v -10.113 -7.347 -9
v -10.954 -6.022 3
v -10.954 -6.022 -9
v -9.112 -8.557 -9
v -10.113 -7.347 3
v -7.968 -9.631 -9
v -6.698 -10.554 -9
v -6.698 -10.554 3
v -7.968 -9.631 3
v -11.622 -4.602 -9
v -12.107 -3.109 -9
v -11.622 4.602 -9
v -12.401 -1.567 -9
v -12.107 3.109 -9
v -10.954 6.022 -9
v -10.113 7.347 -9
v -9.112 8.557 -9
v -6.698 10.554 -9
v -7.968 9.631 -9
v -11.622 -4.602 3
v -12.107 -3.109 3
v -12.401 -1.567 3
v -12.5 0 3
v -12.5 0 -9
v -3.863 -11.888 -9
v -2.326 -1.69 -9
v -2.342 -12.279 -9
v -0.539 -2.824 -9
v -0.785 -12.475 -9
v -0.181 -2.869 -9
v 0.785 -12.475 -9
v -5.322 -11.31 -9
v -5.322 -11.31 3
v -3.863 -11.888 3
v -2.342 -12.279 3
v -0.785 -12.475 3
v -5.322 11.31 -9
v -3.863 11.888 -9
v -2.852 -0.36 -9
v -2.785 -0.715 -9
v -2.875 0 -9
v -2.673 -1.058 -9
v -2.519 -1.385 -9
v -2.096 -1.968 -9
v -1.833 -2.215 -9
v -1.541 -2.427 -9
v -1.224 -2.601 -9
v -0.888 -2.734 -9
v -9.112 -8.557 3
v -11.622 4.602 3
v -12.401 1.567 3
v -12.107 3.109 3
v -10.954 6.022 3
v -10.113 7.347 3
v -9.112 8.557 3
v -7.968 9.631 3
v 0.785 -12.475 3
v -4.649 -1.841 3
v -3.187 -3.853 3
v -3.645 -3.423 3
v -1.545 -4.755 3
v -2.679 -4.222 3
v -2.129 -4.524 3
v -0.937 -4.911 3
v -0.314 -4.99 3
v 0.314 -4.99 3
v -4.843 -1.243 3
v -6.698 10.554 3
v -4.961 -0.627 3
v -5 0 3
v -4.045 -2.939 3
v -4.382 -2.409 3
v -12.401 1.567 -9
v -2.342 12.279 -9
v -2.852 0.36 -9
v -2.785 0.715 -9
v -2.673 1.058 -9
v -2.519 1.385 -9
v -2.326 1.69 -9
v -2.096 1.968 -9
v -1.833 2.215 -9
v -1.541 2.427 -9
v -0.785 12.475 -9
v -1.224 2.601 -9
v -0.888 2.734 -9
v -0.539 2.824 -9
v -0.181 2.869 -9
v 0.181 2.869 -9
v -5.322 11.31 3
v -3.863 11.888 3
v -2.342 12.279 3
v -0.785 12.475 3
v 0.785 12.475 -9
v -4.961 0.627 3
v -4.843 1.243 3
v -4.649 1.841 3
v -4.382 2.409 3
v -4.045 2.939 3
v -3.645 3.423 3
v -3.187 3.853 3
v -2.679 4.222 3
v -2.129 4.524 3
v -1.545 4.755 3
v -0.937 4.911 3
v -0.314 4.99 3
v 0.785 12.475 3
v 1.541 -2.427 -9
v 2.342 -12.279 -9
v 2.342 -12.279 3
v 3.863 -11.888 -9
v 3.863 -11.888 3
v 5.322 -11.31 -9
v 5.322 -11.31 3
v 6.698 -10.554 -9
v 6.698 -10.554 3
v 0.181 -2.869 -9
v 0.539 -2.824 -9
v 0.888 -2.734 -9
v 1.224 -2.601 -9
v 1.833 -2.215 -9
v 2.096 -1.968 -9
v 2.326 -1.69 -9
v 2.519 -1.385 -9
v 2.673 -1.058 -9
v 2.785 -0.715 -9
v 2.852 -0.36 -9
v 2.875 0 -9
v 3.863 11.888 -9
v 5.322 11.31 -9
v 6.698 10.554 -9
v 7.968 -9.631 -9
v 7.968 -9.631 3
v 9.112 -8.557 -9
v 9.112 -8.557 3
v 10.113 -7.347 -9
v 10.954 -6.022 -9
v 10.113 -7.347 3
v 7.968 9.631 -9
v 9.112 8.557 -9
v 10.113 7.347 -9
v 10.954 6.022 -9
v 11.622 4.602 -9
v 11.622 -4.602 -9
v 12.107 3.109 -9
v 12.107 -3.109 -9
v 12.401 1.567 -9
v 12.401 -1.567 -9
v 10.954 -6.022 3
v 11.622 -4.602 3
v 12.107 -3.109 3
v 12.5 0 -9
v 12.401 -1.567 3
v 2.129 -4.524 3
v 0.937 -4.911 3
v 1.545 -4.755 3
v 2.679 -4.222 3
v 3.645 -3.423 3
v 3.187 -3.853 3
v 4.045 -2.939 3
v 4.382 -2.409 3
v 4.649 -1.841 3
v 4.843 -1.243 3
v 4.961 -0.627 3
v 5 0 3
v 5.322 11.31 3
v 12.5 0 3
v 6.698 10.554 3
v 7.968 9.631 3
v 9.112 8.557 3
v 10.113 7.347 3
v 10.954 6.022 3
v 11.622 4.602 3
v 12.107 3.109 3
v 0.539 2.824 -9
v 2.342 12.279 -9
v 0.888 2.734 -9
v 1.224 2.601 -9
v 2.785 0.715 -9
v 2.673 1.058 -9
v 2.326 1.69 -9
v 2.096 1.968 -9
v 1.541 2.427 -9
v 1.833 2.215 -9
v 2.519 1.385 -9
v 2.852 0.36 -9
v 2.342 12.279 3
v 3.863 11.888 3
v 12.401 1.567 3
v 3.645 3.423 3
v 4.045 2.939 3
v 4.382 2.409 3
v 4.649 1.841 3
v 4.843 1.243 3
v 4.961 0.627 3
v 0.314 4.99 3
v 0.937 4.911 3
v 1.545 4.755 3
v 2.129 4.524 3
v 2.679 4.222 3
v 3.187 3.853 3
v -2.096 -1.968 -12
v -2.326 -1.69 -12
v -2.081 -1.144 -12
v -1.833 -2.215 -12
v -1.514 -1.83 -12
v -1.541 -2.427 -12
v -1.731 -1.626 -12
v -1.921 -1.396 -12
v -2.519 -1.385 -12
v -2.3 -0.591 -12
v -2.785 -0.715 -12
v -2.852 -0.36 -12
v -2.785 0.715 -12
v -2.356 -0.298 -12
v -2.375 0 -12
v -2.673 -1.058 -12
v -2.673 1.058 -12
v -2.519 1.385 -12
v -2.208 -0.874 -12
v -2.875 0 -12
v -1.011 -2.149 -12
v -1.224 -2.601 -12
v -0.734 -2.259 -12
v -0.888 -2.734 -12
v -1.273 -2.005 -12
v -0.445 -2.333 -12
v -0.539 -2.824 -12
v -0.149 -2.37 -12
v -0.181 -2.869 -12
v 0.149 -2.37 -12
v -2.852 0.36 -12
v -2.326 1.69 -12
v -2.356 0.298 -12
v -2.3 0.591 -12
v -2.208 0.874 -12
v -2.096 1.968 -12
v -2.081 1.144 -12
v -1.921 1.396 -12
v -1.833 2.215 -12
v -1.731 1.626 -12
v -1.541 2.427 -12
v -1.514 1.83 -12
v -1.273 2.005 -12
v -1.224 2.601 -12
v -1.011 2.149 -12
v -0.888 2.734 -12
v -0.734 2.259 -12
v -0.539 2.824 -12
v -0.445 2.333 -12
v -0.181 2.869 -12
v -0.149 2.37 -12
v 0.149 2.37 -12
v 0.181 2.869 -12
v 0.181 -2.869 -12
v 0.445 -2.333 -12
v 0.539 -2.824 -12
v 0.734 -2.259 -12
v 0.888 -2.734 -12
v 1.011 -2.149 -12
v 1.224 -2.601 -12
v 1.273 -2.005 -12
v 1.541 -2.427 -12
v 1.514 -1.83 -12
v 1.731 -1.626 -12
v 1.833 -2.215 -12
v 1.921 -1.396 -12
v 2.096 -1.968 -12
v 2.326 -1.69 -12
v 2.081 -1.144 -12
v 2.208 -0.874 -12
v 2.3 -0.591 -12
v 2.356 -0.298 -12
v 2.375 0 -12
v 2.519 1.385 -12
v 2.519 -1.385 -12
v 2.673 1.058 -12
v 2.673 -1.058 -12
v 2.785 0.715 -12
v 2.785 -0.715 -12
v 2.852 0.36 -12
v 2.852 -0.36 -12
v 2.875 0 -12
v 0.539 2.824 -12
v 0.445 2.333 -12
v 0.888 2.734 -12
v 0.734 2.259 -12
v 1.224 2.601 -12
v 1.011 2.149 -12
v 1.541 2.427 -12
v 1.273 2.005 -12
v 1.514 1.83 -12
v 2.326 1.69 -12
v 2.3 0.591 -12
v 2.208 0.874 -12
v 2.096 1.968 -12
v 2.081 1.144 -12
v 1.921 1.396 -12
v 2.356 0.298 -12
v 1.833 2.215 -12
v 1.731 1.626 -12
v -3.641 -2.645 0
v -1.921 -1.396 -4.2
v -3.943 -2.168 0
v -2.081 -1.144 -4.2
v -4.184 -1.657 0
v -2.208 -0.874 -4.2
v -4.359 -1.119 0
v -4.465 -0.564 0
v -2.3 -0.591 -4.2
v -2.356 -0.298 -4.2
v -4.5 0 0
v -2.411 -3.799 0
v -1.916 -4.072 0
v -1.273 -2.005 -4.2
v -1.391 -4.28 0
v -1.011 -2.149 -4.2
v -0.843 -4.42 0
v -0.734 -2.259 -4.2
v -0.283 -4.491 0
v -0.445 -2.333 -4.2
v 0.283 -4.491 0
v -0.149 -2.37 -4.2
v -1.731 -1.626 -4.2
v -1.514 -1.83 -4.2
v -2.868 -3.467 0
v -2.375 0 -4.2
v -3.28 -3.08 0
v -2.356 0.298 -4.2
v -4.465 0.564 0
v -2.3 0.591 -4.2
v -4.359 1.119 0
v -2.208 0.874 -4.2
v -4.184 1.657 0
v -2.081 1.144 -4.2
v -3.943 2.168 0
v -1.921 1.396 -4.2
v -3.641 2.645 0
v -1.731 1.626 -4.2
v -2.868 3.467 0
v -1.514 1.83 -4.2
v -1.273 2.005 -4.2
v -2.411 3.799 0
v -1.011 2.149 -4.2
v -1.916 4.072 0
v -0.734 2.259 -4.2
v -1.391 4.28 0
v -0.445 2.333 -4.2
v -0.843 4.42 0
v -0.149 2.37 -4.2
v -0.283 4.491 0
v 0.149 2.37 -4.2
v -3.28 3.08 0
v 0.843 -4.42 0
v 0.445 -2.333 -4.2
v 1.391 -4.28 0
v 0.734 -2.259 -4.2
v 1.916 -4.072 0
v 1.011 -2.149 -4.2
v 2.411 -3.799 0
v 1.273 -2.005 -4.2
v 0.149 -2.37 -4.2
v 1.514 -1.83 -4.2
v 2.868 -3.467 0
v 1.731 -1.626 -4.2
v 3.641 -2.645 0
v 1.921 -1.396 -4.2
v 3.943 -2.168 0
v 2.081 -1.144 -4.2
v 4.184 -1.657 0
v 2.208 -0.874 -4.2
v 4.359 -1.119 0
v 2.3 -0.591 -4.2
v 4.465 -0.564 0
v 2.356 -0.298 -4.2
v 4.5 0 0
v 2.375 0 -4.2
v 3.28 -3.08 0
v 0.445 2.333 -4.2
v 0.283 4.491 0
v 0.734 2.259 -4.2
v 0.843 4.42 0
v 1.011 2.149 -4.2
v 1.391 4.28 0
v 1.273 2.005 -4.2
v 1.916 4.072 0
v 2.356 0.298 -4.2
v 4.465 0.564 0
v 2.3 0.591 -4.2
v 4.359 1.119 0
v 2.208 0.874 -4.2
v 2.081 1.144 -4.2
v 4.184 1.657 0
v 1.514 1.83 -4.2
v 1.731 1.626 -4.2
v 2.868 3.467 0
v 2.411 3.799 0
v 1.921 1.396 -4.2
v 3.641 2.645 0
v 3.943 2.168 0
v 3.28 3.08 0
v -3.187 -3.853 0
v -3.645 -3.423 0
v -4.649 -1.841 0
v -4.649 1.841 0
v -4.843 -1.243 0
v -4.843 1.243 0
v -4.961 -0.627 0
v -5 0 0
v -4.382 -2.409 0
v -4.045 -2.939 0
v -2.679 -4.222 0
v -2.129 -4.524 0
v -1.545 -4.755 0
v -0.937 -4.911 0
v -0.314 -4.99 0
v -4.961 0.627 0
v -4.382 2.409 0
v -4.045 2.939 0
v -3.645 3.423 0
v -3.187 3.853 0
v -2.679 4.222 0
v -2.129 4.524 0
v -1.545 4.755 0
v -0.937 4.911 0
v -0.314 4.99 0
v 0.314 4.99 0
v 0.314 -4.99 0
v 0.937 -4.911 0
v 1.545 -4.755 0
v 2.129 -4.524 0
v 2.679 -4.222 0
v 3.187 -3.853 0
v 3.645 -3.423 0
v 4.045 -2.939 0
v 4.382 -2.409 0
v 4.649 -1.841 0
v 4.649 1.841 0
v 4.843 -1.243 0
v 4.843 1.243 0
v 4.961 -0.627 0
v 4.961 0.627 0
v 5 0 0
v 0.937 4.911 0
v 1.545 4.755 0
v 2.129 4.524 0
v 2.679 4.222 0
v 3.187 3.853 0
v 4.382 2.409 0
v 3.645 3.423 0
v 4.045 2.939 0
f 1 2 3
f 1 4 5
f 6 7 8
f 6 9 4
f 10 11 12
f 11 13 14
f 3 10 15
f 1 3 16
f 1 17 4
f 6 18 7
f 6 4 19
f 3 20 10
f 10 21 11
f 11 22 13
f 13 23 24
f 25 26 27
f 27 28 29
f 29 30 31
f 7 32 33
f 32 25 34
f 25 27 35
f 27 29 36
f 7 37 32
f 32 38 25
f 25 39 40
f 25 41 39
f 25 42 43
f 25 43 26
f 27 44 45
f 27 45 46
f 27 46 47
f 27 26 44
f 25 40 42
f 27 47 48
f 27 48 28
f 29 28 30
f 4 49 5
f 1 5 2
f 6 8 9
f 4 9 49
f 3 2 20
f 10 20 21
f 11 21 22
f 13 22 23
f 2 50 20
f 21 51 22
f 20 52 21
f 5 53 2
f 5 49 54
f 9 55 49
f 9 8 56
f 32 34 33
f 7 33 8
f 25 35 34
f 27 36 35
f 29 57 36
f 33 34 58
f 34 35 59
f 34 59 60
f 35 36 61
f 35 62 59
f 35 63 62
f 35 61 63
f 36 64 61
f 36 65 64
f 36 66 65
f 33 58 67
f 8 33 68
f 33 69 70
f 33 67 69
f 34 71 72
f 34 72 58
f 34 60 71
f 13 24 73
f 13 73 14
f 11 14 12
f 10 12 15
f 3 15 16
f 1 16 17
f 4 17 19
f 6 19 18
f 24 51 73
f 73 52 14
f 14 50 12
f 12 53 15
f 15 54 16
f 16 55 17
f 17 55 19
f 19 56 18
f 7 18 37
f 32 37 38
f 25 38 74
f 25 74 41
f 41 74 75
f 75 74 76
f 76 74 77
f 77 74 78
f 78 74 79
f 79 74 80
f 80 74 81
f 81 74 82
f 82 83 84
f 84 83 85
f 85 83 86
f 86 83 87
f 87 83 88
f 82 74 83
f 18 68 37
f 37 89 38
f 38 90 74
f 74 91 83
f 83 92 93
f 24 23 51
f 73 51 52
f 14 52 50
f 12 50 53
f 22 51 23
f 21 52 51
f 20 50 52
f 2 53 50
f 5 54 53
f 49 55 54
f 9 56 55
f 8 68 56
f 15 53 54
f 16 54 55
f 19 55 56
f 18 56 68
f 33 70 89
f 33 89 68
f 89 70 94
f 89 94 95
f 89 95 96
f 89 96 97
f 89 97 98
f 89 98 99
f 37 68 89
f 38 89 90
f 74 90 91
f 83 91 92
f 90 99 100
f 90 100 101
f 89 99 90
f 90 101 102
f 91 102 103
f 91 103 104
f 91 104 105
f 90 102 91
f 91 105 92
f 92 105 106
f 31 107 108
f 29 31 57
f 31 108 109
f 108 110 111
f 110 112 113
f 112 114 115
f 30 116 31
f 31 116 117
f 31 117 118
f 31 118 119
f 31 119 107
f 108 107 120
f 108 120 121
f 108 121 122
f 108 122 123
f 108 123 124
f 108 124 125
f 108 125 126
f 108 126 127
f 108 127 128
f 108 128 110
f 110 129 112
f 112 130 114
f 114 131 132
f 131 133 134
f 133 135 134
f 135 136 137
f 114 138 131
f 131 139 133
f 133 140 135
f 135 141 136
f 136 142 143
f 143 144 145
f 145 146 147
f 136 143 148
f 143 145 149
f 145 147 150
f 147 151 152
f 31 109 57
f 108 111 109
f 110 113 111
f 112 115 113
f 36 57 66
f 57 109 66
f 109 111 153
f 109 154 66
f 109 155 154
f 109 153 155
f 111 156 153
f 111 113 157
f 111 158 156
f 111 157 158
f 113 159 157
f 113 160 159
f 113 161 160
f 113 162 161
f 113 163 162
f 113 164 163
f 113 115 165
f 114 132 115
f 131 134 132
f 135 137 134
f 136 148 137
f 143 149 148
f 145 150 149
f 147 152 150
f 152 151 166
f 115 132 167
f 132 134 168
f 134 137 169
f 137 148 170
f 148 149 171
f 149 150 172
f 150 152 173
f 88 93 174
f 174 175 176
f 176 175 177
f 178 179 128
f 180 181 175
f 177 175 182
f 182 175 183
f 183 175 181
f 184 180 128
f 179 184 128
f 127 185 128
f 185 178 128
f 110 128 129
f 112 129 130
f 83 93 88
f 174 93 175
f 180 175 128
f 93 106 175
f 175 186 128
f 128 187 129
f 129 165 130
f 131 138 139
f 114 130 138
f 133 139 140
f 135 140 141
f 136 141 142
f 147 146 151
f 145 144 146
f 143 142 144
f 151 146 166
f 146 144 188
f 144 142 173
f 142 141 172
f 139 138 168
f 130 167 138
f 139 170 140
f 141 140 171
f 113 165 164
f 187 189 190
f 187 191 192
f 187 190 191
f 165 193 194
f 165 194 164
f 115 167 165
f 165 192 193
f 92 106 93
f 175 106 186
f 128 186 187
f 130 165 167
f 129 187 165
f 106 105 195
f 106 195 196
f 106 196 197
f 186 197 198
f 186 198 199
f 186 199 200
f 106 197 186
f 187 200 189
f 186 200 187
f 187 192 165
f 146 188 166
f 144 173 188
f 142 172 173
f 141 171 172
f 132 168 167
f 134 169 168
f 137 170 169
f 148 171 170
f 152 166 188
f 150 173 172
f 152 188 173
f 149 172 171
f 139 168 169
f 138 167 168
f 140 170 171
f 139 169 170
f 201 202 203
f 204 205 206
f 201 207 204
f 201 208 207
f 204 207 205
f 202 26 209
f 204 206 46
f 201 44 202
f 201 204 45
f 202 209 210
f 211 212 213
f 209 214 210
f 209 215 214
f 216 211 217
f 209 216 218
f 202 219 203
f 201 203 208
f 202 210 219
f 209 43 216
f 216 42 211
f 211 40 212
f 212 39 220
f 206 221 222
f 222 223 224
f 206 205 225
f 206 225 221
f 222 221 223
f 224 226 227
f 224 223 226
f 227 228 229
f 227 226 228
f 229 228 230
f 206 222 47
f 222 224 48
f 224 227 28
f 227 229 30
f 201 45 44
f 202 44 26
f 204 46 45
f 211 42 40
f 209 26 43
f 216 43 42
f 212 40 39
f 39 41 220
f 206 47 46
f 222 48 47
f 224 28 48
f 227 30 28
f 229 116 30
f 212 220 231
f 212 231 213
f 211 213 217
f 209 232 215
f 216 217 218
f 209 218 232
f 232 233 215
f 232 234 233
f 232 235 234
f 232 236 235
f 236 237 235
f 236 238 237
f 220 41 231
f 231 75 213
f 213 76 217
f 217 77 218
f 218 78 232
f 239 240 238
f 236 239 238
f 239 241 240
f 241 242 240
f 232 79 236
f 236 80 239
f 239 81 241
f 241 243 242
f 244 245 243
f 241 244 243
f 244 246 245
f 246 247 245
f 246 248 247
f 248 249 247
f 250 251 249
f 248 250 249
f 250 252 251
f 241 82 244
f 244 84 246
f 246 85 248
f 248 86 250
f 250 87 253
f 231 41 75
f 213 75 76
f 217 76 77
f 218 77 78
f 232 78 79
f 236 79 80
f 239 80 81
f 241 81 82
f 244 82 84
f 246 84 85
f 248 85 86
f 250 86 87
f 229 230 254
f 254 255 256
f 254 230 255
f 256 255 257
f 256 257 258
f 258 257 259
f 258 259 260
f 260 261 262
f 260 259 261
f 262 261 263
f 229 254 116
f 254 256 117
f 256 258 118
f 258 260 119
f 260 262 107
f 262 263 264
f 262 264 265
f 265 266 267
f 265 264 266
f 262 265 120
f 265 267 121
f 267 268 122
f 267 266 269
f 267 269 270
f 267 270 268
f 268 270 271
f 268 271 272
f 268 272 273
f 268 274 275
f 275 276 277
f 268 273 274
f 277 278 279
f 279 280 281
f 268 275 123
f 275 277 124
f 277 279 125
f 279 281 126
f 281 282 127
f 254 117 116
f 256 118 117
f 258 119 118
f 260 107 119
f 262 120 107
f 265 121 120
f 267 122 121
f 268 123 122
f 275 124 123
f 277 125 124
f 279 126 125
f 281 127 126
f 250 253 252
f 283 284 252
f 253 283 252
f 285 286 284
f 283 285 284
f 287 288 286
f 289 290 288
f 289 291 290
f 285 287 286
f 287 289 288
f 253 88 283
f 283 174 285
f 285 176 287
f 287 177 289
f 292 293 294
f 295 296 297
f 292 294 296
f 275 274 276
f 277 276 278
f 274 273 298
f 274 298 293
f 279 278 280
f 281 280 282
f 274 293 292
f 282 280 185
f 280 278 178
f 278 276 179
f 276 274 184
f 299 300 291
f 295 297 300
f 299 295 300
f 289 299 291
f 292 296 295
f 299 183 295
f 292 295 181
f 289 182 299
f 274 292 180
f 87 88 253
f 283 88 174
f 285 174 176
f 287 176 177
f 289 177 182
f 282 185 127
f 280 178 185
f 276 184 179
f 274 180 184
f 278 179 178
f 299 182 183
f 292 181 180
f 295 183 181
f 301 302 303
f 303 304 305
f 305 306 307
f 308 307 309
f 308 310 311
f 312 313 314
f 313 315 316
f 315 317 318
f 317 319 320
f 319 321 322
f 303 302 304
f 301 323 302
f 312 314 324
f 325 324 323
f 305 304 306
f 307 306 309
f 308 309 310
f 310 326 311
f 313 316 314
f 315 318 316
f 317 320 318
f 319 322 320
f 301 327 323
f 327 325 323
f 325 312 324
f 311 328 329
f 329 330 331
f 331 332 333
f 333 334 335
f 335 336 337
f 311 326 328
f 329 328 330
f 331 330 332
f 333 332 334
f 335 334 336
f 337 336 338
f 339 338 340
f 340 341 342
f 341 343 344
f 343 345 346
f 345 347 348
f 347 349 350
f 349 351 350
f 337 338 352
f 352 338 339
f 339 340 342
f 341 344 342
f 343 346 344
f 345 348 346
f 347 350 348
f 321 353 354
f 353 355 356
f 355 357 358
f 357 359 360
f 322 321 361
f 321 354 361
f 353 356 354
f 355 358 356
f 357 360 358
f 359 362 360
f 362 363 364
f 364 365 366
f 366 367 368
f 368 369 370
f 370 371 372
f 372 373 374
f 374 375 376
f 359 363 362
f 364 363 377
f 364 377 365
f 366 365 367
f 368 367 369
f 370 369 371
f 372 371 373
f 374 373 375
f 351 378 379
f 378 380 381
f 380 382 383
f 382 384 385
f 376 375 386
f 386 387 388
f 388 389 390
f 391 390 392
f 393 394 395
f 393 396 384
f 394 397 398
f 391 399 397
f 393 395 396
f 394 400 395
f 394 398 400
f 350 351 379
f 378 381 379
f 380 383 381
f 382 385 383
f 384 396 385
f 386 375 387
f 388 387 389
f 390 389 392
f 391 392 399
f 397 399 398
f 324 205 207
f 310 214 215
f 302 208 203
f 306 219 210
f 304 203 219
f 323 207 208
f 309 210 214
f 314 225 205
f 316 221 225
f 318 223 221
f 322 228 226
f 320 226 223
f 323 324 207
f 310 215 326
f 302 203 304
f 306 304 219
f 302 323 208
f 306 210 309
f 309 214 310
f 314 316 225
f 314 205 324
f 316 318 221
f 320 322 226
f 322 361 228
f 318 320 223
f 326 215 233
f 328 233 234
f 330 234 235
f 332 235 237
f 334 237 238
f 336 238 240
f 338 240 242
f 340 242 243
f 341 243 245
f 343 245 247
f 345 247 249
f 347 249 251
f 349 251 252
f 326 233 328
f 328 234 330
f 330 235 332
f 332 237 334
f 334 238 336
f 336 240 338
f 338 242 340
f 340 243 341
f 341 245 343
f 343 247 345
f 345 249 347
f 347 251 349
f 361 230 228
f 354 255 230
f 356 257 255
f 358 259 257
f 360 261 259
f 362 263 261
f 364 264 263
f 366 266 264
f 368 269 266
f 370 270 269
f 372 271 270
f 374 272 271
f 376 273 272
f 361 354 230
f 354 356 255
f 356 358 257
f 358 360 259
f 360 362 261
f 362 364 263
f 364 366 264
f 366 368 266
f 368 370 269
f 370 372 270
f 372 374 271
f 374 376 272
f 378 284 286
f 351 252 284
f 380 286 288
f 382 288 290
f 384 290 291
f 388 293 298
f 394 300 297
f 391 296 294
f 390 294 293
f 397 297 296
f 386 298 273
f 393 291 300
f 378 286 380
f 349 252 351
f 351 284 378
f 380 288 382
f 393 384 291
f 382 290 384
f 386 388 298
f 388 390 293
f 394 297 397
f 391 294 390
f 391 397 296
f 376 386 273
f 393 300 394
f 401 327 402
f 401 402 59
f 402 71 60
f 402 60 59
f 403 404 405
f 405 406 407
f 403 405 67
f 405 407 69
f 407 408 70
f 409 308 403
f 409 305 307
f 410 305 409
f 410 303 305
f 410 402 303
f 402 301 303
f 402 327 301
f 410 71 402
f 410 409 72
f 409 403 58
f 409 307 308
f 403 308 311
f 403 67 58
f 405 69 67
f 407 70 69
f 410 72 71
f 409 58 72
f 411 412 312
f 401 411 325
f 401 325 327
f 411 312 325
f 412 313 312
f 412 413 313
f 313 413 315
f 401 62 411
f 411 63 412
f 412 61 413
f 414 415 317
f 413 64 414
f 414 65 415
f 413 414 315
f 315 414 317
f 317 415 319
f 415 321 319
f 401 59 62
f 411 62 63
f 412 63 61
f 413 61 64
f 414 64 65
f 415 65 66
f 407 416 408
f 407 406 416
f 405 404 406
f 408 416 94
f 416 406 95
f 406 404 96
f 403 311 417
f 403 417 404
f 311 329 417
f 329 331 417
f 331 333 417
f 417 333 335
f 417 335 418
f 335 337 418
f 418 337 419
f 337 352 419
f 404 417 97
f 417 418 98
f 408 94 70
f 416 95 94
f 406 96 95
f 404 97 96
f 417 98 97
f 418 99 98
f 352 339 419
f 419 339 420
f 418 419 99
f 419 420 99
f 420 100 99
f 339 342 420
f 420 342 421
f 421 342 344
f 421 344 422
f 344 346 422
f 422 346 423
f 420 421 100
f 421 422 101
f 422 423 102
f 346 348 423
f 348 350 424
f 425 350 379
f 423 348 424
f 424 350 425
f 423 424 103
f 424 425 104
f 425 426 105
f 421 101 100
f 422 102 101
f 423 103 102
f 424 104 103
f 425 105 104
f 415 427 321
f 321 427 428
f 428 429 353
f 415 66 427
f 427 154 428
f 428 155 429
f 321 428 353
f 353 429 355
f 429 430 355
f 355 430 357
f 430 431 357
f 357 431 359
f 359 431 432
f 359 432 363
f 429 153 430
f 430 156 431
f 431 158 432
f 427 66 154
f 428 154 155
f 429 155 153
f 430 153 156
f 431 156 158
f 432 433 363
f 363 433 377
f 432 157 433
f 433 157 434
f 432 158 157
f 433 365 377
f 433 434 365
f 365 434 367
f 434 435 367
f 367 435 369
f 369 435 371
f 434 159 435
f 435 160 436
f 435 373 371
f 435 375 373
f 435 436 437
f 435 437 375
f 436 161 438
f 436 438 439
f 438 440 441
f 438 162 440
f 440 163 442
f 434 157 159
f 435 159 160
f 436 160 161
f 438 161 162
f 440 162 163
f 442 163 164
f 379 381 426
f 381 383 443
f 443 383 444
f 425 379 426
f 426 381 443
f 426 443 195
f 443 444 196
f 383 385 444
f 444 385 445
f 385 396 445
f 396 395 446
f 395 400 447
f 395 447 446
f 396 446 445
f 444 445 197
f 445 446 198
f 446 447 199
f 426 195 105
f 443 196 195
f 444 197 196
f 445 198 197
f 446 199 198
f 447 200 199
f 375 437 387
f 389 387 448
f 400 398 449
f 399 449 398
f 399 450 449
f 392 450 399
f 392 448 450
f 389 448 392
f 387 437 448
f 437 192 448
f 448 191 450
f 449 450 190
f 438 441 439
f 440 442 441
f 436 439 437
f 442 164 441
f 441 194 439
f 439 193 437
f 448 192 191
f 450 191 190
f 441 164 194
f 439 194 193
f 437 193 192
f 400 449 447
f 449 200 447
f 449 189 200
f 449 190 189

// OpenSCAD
$fn = 50;

difference() {
	union() {
		translate(v = [0, 0, -9.0]) {
			cylinder(h = 12, r = 12.5);
		}
		#translate(v = [0, 0, -12.0]) {
			cylinder(h = 12, r = 2.875);
		}
	}
	union() {
		translate(v = [0, 0, 0]) {
			rotate(a = [0, 0, 0]) {
				difference() {
					union() {
						translate(v = [0, 0, -12.0]) {
							cylinder(h = 12, r = 2.25);
						}
						translate(v = [0, 0, -4.2]) {
							cylinder(h = 4.2, r1 = 2.375, r2 = 4.5);
						}
						translate(v = [0, 0, -12.0]) {
							cylinder(h = 12, r = 2.375);
						}
						translate(v = [0, 0, -12.0]) {
							cylinder(h = 12, r = 2.25);
						}
					}
					union();
				}
			}
		}
		#cylinder(h = 3, r = 5.0);
	}
}
